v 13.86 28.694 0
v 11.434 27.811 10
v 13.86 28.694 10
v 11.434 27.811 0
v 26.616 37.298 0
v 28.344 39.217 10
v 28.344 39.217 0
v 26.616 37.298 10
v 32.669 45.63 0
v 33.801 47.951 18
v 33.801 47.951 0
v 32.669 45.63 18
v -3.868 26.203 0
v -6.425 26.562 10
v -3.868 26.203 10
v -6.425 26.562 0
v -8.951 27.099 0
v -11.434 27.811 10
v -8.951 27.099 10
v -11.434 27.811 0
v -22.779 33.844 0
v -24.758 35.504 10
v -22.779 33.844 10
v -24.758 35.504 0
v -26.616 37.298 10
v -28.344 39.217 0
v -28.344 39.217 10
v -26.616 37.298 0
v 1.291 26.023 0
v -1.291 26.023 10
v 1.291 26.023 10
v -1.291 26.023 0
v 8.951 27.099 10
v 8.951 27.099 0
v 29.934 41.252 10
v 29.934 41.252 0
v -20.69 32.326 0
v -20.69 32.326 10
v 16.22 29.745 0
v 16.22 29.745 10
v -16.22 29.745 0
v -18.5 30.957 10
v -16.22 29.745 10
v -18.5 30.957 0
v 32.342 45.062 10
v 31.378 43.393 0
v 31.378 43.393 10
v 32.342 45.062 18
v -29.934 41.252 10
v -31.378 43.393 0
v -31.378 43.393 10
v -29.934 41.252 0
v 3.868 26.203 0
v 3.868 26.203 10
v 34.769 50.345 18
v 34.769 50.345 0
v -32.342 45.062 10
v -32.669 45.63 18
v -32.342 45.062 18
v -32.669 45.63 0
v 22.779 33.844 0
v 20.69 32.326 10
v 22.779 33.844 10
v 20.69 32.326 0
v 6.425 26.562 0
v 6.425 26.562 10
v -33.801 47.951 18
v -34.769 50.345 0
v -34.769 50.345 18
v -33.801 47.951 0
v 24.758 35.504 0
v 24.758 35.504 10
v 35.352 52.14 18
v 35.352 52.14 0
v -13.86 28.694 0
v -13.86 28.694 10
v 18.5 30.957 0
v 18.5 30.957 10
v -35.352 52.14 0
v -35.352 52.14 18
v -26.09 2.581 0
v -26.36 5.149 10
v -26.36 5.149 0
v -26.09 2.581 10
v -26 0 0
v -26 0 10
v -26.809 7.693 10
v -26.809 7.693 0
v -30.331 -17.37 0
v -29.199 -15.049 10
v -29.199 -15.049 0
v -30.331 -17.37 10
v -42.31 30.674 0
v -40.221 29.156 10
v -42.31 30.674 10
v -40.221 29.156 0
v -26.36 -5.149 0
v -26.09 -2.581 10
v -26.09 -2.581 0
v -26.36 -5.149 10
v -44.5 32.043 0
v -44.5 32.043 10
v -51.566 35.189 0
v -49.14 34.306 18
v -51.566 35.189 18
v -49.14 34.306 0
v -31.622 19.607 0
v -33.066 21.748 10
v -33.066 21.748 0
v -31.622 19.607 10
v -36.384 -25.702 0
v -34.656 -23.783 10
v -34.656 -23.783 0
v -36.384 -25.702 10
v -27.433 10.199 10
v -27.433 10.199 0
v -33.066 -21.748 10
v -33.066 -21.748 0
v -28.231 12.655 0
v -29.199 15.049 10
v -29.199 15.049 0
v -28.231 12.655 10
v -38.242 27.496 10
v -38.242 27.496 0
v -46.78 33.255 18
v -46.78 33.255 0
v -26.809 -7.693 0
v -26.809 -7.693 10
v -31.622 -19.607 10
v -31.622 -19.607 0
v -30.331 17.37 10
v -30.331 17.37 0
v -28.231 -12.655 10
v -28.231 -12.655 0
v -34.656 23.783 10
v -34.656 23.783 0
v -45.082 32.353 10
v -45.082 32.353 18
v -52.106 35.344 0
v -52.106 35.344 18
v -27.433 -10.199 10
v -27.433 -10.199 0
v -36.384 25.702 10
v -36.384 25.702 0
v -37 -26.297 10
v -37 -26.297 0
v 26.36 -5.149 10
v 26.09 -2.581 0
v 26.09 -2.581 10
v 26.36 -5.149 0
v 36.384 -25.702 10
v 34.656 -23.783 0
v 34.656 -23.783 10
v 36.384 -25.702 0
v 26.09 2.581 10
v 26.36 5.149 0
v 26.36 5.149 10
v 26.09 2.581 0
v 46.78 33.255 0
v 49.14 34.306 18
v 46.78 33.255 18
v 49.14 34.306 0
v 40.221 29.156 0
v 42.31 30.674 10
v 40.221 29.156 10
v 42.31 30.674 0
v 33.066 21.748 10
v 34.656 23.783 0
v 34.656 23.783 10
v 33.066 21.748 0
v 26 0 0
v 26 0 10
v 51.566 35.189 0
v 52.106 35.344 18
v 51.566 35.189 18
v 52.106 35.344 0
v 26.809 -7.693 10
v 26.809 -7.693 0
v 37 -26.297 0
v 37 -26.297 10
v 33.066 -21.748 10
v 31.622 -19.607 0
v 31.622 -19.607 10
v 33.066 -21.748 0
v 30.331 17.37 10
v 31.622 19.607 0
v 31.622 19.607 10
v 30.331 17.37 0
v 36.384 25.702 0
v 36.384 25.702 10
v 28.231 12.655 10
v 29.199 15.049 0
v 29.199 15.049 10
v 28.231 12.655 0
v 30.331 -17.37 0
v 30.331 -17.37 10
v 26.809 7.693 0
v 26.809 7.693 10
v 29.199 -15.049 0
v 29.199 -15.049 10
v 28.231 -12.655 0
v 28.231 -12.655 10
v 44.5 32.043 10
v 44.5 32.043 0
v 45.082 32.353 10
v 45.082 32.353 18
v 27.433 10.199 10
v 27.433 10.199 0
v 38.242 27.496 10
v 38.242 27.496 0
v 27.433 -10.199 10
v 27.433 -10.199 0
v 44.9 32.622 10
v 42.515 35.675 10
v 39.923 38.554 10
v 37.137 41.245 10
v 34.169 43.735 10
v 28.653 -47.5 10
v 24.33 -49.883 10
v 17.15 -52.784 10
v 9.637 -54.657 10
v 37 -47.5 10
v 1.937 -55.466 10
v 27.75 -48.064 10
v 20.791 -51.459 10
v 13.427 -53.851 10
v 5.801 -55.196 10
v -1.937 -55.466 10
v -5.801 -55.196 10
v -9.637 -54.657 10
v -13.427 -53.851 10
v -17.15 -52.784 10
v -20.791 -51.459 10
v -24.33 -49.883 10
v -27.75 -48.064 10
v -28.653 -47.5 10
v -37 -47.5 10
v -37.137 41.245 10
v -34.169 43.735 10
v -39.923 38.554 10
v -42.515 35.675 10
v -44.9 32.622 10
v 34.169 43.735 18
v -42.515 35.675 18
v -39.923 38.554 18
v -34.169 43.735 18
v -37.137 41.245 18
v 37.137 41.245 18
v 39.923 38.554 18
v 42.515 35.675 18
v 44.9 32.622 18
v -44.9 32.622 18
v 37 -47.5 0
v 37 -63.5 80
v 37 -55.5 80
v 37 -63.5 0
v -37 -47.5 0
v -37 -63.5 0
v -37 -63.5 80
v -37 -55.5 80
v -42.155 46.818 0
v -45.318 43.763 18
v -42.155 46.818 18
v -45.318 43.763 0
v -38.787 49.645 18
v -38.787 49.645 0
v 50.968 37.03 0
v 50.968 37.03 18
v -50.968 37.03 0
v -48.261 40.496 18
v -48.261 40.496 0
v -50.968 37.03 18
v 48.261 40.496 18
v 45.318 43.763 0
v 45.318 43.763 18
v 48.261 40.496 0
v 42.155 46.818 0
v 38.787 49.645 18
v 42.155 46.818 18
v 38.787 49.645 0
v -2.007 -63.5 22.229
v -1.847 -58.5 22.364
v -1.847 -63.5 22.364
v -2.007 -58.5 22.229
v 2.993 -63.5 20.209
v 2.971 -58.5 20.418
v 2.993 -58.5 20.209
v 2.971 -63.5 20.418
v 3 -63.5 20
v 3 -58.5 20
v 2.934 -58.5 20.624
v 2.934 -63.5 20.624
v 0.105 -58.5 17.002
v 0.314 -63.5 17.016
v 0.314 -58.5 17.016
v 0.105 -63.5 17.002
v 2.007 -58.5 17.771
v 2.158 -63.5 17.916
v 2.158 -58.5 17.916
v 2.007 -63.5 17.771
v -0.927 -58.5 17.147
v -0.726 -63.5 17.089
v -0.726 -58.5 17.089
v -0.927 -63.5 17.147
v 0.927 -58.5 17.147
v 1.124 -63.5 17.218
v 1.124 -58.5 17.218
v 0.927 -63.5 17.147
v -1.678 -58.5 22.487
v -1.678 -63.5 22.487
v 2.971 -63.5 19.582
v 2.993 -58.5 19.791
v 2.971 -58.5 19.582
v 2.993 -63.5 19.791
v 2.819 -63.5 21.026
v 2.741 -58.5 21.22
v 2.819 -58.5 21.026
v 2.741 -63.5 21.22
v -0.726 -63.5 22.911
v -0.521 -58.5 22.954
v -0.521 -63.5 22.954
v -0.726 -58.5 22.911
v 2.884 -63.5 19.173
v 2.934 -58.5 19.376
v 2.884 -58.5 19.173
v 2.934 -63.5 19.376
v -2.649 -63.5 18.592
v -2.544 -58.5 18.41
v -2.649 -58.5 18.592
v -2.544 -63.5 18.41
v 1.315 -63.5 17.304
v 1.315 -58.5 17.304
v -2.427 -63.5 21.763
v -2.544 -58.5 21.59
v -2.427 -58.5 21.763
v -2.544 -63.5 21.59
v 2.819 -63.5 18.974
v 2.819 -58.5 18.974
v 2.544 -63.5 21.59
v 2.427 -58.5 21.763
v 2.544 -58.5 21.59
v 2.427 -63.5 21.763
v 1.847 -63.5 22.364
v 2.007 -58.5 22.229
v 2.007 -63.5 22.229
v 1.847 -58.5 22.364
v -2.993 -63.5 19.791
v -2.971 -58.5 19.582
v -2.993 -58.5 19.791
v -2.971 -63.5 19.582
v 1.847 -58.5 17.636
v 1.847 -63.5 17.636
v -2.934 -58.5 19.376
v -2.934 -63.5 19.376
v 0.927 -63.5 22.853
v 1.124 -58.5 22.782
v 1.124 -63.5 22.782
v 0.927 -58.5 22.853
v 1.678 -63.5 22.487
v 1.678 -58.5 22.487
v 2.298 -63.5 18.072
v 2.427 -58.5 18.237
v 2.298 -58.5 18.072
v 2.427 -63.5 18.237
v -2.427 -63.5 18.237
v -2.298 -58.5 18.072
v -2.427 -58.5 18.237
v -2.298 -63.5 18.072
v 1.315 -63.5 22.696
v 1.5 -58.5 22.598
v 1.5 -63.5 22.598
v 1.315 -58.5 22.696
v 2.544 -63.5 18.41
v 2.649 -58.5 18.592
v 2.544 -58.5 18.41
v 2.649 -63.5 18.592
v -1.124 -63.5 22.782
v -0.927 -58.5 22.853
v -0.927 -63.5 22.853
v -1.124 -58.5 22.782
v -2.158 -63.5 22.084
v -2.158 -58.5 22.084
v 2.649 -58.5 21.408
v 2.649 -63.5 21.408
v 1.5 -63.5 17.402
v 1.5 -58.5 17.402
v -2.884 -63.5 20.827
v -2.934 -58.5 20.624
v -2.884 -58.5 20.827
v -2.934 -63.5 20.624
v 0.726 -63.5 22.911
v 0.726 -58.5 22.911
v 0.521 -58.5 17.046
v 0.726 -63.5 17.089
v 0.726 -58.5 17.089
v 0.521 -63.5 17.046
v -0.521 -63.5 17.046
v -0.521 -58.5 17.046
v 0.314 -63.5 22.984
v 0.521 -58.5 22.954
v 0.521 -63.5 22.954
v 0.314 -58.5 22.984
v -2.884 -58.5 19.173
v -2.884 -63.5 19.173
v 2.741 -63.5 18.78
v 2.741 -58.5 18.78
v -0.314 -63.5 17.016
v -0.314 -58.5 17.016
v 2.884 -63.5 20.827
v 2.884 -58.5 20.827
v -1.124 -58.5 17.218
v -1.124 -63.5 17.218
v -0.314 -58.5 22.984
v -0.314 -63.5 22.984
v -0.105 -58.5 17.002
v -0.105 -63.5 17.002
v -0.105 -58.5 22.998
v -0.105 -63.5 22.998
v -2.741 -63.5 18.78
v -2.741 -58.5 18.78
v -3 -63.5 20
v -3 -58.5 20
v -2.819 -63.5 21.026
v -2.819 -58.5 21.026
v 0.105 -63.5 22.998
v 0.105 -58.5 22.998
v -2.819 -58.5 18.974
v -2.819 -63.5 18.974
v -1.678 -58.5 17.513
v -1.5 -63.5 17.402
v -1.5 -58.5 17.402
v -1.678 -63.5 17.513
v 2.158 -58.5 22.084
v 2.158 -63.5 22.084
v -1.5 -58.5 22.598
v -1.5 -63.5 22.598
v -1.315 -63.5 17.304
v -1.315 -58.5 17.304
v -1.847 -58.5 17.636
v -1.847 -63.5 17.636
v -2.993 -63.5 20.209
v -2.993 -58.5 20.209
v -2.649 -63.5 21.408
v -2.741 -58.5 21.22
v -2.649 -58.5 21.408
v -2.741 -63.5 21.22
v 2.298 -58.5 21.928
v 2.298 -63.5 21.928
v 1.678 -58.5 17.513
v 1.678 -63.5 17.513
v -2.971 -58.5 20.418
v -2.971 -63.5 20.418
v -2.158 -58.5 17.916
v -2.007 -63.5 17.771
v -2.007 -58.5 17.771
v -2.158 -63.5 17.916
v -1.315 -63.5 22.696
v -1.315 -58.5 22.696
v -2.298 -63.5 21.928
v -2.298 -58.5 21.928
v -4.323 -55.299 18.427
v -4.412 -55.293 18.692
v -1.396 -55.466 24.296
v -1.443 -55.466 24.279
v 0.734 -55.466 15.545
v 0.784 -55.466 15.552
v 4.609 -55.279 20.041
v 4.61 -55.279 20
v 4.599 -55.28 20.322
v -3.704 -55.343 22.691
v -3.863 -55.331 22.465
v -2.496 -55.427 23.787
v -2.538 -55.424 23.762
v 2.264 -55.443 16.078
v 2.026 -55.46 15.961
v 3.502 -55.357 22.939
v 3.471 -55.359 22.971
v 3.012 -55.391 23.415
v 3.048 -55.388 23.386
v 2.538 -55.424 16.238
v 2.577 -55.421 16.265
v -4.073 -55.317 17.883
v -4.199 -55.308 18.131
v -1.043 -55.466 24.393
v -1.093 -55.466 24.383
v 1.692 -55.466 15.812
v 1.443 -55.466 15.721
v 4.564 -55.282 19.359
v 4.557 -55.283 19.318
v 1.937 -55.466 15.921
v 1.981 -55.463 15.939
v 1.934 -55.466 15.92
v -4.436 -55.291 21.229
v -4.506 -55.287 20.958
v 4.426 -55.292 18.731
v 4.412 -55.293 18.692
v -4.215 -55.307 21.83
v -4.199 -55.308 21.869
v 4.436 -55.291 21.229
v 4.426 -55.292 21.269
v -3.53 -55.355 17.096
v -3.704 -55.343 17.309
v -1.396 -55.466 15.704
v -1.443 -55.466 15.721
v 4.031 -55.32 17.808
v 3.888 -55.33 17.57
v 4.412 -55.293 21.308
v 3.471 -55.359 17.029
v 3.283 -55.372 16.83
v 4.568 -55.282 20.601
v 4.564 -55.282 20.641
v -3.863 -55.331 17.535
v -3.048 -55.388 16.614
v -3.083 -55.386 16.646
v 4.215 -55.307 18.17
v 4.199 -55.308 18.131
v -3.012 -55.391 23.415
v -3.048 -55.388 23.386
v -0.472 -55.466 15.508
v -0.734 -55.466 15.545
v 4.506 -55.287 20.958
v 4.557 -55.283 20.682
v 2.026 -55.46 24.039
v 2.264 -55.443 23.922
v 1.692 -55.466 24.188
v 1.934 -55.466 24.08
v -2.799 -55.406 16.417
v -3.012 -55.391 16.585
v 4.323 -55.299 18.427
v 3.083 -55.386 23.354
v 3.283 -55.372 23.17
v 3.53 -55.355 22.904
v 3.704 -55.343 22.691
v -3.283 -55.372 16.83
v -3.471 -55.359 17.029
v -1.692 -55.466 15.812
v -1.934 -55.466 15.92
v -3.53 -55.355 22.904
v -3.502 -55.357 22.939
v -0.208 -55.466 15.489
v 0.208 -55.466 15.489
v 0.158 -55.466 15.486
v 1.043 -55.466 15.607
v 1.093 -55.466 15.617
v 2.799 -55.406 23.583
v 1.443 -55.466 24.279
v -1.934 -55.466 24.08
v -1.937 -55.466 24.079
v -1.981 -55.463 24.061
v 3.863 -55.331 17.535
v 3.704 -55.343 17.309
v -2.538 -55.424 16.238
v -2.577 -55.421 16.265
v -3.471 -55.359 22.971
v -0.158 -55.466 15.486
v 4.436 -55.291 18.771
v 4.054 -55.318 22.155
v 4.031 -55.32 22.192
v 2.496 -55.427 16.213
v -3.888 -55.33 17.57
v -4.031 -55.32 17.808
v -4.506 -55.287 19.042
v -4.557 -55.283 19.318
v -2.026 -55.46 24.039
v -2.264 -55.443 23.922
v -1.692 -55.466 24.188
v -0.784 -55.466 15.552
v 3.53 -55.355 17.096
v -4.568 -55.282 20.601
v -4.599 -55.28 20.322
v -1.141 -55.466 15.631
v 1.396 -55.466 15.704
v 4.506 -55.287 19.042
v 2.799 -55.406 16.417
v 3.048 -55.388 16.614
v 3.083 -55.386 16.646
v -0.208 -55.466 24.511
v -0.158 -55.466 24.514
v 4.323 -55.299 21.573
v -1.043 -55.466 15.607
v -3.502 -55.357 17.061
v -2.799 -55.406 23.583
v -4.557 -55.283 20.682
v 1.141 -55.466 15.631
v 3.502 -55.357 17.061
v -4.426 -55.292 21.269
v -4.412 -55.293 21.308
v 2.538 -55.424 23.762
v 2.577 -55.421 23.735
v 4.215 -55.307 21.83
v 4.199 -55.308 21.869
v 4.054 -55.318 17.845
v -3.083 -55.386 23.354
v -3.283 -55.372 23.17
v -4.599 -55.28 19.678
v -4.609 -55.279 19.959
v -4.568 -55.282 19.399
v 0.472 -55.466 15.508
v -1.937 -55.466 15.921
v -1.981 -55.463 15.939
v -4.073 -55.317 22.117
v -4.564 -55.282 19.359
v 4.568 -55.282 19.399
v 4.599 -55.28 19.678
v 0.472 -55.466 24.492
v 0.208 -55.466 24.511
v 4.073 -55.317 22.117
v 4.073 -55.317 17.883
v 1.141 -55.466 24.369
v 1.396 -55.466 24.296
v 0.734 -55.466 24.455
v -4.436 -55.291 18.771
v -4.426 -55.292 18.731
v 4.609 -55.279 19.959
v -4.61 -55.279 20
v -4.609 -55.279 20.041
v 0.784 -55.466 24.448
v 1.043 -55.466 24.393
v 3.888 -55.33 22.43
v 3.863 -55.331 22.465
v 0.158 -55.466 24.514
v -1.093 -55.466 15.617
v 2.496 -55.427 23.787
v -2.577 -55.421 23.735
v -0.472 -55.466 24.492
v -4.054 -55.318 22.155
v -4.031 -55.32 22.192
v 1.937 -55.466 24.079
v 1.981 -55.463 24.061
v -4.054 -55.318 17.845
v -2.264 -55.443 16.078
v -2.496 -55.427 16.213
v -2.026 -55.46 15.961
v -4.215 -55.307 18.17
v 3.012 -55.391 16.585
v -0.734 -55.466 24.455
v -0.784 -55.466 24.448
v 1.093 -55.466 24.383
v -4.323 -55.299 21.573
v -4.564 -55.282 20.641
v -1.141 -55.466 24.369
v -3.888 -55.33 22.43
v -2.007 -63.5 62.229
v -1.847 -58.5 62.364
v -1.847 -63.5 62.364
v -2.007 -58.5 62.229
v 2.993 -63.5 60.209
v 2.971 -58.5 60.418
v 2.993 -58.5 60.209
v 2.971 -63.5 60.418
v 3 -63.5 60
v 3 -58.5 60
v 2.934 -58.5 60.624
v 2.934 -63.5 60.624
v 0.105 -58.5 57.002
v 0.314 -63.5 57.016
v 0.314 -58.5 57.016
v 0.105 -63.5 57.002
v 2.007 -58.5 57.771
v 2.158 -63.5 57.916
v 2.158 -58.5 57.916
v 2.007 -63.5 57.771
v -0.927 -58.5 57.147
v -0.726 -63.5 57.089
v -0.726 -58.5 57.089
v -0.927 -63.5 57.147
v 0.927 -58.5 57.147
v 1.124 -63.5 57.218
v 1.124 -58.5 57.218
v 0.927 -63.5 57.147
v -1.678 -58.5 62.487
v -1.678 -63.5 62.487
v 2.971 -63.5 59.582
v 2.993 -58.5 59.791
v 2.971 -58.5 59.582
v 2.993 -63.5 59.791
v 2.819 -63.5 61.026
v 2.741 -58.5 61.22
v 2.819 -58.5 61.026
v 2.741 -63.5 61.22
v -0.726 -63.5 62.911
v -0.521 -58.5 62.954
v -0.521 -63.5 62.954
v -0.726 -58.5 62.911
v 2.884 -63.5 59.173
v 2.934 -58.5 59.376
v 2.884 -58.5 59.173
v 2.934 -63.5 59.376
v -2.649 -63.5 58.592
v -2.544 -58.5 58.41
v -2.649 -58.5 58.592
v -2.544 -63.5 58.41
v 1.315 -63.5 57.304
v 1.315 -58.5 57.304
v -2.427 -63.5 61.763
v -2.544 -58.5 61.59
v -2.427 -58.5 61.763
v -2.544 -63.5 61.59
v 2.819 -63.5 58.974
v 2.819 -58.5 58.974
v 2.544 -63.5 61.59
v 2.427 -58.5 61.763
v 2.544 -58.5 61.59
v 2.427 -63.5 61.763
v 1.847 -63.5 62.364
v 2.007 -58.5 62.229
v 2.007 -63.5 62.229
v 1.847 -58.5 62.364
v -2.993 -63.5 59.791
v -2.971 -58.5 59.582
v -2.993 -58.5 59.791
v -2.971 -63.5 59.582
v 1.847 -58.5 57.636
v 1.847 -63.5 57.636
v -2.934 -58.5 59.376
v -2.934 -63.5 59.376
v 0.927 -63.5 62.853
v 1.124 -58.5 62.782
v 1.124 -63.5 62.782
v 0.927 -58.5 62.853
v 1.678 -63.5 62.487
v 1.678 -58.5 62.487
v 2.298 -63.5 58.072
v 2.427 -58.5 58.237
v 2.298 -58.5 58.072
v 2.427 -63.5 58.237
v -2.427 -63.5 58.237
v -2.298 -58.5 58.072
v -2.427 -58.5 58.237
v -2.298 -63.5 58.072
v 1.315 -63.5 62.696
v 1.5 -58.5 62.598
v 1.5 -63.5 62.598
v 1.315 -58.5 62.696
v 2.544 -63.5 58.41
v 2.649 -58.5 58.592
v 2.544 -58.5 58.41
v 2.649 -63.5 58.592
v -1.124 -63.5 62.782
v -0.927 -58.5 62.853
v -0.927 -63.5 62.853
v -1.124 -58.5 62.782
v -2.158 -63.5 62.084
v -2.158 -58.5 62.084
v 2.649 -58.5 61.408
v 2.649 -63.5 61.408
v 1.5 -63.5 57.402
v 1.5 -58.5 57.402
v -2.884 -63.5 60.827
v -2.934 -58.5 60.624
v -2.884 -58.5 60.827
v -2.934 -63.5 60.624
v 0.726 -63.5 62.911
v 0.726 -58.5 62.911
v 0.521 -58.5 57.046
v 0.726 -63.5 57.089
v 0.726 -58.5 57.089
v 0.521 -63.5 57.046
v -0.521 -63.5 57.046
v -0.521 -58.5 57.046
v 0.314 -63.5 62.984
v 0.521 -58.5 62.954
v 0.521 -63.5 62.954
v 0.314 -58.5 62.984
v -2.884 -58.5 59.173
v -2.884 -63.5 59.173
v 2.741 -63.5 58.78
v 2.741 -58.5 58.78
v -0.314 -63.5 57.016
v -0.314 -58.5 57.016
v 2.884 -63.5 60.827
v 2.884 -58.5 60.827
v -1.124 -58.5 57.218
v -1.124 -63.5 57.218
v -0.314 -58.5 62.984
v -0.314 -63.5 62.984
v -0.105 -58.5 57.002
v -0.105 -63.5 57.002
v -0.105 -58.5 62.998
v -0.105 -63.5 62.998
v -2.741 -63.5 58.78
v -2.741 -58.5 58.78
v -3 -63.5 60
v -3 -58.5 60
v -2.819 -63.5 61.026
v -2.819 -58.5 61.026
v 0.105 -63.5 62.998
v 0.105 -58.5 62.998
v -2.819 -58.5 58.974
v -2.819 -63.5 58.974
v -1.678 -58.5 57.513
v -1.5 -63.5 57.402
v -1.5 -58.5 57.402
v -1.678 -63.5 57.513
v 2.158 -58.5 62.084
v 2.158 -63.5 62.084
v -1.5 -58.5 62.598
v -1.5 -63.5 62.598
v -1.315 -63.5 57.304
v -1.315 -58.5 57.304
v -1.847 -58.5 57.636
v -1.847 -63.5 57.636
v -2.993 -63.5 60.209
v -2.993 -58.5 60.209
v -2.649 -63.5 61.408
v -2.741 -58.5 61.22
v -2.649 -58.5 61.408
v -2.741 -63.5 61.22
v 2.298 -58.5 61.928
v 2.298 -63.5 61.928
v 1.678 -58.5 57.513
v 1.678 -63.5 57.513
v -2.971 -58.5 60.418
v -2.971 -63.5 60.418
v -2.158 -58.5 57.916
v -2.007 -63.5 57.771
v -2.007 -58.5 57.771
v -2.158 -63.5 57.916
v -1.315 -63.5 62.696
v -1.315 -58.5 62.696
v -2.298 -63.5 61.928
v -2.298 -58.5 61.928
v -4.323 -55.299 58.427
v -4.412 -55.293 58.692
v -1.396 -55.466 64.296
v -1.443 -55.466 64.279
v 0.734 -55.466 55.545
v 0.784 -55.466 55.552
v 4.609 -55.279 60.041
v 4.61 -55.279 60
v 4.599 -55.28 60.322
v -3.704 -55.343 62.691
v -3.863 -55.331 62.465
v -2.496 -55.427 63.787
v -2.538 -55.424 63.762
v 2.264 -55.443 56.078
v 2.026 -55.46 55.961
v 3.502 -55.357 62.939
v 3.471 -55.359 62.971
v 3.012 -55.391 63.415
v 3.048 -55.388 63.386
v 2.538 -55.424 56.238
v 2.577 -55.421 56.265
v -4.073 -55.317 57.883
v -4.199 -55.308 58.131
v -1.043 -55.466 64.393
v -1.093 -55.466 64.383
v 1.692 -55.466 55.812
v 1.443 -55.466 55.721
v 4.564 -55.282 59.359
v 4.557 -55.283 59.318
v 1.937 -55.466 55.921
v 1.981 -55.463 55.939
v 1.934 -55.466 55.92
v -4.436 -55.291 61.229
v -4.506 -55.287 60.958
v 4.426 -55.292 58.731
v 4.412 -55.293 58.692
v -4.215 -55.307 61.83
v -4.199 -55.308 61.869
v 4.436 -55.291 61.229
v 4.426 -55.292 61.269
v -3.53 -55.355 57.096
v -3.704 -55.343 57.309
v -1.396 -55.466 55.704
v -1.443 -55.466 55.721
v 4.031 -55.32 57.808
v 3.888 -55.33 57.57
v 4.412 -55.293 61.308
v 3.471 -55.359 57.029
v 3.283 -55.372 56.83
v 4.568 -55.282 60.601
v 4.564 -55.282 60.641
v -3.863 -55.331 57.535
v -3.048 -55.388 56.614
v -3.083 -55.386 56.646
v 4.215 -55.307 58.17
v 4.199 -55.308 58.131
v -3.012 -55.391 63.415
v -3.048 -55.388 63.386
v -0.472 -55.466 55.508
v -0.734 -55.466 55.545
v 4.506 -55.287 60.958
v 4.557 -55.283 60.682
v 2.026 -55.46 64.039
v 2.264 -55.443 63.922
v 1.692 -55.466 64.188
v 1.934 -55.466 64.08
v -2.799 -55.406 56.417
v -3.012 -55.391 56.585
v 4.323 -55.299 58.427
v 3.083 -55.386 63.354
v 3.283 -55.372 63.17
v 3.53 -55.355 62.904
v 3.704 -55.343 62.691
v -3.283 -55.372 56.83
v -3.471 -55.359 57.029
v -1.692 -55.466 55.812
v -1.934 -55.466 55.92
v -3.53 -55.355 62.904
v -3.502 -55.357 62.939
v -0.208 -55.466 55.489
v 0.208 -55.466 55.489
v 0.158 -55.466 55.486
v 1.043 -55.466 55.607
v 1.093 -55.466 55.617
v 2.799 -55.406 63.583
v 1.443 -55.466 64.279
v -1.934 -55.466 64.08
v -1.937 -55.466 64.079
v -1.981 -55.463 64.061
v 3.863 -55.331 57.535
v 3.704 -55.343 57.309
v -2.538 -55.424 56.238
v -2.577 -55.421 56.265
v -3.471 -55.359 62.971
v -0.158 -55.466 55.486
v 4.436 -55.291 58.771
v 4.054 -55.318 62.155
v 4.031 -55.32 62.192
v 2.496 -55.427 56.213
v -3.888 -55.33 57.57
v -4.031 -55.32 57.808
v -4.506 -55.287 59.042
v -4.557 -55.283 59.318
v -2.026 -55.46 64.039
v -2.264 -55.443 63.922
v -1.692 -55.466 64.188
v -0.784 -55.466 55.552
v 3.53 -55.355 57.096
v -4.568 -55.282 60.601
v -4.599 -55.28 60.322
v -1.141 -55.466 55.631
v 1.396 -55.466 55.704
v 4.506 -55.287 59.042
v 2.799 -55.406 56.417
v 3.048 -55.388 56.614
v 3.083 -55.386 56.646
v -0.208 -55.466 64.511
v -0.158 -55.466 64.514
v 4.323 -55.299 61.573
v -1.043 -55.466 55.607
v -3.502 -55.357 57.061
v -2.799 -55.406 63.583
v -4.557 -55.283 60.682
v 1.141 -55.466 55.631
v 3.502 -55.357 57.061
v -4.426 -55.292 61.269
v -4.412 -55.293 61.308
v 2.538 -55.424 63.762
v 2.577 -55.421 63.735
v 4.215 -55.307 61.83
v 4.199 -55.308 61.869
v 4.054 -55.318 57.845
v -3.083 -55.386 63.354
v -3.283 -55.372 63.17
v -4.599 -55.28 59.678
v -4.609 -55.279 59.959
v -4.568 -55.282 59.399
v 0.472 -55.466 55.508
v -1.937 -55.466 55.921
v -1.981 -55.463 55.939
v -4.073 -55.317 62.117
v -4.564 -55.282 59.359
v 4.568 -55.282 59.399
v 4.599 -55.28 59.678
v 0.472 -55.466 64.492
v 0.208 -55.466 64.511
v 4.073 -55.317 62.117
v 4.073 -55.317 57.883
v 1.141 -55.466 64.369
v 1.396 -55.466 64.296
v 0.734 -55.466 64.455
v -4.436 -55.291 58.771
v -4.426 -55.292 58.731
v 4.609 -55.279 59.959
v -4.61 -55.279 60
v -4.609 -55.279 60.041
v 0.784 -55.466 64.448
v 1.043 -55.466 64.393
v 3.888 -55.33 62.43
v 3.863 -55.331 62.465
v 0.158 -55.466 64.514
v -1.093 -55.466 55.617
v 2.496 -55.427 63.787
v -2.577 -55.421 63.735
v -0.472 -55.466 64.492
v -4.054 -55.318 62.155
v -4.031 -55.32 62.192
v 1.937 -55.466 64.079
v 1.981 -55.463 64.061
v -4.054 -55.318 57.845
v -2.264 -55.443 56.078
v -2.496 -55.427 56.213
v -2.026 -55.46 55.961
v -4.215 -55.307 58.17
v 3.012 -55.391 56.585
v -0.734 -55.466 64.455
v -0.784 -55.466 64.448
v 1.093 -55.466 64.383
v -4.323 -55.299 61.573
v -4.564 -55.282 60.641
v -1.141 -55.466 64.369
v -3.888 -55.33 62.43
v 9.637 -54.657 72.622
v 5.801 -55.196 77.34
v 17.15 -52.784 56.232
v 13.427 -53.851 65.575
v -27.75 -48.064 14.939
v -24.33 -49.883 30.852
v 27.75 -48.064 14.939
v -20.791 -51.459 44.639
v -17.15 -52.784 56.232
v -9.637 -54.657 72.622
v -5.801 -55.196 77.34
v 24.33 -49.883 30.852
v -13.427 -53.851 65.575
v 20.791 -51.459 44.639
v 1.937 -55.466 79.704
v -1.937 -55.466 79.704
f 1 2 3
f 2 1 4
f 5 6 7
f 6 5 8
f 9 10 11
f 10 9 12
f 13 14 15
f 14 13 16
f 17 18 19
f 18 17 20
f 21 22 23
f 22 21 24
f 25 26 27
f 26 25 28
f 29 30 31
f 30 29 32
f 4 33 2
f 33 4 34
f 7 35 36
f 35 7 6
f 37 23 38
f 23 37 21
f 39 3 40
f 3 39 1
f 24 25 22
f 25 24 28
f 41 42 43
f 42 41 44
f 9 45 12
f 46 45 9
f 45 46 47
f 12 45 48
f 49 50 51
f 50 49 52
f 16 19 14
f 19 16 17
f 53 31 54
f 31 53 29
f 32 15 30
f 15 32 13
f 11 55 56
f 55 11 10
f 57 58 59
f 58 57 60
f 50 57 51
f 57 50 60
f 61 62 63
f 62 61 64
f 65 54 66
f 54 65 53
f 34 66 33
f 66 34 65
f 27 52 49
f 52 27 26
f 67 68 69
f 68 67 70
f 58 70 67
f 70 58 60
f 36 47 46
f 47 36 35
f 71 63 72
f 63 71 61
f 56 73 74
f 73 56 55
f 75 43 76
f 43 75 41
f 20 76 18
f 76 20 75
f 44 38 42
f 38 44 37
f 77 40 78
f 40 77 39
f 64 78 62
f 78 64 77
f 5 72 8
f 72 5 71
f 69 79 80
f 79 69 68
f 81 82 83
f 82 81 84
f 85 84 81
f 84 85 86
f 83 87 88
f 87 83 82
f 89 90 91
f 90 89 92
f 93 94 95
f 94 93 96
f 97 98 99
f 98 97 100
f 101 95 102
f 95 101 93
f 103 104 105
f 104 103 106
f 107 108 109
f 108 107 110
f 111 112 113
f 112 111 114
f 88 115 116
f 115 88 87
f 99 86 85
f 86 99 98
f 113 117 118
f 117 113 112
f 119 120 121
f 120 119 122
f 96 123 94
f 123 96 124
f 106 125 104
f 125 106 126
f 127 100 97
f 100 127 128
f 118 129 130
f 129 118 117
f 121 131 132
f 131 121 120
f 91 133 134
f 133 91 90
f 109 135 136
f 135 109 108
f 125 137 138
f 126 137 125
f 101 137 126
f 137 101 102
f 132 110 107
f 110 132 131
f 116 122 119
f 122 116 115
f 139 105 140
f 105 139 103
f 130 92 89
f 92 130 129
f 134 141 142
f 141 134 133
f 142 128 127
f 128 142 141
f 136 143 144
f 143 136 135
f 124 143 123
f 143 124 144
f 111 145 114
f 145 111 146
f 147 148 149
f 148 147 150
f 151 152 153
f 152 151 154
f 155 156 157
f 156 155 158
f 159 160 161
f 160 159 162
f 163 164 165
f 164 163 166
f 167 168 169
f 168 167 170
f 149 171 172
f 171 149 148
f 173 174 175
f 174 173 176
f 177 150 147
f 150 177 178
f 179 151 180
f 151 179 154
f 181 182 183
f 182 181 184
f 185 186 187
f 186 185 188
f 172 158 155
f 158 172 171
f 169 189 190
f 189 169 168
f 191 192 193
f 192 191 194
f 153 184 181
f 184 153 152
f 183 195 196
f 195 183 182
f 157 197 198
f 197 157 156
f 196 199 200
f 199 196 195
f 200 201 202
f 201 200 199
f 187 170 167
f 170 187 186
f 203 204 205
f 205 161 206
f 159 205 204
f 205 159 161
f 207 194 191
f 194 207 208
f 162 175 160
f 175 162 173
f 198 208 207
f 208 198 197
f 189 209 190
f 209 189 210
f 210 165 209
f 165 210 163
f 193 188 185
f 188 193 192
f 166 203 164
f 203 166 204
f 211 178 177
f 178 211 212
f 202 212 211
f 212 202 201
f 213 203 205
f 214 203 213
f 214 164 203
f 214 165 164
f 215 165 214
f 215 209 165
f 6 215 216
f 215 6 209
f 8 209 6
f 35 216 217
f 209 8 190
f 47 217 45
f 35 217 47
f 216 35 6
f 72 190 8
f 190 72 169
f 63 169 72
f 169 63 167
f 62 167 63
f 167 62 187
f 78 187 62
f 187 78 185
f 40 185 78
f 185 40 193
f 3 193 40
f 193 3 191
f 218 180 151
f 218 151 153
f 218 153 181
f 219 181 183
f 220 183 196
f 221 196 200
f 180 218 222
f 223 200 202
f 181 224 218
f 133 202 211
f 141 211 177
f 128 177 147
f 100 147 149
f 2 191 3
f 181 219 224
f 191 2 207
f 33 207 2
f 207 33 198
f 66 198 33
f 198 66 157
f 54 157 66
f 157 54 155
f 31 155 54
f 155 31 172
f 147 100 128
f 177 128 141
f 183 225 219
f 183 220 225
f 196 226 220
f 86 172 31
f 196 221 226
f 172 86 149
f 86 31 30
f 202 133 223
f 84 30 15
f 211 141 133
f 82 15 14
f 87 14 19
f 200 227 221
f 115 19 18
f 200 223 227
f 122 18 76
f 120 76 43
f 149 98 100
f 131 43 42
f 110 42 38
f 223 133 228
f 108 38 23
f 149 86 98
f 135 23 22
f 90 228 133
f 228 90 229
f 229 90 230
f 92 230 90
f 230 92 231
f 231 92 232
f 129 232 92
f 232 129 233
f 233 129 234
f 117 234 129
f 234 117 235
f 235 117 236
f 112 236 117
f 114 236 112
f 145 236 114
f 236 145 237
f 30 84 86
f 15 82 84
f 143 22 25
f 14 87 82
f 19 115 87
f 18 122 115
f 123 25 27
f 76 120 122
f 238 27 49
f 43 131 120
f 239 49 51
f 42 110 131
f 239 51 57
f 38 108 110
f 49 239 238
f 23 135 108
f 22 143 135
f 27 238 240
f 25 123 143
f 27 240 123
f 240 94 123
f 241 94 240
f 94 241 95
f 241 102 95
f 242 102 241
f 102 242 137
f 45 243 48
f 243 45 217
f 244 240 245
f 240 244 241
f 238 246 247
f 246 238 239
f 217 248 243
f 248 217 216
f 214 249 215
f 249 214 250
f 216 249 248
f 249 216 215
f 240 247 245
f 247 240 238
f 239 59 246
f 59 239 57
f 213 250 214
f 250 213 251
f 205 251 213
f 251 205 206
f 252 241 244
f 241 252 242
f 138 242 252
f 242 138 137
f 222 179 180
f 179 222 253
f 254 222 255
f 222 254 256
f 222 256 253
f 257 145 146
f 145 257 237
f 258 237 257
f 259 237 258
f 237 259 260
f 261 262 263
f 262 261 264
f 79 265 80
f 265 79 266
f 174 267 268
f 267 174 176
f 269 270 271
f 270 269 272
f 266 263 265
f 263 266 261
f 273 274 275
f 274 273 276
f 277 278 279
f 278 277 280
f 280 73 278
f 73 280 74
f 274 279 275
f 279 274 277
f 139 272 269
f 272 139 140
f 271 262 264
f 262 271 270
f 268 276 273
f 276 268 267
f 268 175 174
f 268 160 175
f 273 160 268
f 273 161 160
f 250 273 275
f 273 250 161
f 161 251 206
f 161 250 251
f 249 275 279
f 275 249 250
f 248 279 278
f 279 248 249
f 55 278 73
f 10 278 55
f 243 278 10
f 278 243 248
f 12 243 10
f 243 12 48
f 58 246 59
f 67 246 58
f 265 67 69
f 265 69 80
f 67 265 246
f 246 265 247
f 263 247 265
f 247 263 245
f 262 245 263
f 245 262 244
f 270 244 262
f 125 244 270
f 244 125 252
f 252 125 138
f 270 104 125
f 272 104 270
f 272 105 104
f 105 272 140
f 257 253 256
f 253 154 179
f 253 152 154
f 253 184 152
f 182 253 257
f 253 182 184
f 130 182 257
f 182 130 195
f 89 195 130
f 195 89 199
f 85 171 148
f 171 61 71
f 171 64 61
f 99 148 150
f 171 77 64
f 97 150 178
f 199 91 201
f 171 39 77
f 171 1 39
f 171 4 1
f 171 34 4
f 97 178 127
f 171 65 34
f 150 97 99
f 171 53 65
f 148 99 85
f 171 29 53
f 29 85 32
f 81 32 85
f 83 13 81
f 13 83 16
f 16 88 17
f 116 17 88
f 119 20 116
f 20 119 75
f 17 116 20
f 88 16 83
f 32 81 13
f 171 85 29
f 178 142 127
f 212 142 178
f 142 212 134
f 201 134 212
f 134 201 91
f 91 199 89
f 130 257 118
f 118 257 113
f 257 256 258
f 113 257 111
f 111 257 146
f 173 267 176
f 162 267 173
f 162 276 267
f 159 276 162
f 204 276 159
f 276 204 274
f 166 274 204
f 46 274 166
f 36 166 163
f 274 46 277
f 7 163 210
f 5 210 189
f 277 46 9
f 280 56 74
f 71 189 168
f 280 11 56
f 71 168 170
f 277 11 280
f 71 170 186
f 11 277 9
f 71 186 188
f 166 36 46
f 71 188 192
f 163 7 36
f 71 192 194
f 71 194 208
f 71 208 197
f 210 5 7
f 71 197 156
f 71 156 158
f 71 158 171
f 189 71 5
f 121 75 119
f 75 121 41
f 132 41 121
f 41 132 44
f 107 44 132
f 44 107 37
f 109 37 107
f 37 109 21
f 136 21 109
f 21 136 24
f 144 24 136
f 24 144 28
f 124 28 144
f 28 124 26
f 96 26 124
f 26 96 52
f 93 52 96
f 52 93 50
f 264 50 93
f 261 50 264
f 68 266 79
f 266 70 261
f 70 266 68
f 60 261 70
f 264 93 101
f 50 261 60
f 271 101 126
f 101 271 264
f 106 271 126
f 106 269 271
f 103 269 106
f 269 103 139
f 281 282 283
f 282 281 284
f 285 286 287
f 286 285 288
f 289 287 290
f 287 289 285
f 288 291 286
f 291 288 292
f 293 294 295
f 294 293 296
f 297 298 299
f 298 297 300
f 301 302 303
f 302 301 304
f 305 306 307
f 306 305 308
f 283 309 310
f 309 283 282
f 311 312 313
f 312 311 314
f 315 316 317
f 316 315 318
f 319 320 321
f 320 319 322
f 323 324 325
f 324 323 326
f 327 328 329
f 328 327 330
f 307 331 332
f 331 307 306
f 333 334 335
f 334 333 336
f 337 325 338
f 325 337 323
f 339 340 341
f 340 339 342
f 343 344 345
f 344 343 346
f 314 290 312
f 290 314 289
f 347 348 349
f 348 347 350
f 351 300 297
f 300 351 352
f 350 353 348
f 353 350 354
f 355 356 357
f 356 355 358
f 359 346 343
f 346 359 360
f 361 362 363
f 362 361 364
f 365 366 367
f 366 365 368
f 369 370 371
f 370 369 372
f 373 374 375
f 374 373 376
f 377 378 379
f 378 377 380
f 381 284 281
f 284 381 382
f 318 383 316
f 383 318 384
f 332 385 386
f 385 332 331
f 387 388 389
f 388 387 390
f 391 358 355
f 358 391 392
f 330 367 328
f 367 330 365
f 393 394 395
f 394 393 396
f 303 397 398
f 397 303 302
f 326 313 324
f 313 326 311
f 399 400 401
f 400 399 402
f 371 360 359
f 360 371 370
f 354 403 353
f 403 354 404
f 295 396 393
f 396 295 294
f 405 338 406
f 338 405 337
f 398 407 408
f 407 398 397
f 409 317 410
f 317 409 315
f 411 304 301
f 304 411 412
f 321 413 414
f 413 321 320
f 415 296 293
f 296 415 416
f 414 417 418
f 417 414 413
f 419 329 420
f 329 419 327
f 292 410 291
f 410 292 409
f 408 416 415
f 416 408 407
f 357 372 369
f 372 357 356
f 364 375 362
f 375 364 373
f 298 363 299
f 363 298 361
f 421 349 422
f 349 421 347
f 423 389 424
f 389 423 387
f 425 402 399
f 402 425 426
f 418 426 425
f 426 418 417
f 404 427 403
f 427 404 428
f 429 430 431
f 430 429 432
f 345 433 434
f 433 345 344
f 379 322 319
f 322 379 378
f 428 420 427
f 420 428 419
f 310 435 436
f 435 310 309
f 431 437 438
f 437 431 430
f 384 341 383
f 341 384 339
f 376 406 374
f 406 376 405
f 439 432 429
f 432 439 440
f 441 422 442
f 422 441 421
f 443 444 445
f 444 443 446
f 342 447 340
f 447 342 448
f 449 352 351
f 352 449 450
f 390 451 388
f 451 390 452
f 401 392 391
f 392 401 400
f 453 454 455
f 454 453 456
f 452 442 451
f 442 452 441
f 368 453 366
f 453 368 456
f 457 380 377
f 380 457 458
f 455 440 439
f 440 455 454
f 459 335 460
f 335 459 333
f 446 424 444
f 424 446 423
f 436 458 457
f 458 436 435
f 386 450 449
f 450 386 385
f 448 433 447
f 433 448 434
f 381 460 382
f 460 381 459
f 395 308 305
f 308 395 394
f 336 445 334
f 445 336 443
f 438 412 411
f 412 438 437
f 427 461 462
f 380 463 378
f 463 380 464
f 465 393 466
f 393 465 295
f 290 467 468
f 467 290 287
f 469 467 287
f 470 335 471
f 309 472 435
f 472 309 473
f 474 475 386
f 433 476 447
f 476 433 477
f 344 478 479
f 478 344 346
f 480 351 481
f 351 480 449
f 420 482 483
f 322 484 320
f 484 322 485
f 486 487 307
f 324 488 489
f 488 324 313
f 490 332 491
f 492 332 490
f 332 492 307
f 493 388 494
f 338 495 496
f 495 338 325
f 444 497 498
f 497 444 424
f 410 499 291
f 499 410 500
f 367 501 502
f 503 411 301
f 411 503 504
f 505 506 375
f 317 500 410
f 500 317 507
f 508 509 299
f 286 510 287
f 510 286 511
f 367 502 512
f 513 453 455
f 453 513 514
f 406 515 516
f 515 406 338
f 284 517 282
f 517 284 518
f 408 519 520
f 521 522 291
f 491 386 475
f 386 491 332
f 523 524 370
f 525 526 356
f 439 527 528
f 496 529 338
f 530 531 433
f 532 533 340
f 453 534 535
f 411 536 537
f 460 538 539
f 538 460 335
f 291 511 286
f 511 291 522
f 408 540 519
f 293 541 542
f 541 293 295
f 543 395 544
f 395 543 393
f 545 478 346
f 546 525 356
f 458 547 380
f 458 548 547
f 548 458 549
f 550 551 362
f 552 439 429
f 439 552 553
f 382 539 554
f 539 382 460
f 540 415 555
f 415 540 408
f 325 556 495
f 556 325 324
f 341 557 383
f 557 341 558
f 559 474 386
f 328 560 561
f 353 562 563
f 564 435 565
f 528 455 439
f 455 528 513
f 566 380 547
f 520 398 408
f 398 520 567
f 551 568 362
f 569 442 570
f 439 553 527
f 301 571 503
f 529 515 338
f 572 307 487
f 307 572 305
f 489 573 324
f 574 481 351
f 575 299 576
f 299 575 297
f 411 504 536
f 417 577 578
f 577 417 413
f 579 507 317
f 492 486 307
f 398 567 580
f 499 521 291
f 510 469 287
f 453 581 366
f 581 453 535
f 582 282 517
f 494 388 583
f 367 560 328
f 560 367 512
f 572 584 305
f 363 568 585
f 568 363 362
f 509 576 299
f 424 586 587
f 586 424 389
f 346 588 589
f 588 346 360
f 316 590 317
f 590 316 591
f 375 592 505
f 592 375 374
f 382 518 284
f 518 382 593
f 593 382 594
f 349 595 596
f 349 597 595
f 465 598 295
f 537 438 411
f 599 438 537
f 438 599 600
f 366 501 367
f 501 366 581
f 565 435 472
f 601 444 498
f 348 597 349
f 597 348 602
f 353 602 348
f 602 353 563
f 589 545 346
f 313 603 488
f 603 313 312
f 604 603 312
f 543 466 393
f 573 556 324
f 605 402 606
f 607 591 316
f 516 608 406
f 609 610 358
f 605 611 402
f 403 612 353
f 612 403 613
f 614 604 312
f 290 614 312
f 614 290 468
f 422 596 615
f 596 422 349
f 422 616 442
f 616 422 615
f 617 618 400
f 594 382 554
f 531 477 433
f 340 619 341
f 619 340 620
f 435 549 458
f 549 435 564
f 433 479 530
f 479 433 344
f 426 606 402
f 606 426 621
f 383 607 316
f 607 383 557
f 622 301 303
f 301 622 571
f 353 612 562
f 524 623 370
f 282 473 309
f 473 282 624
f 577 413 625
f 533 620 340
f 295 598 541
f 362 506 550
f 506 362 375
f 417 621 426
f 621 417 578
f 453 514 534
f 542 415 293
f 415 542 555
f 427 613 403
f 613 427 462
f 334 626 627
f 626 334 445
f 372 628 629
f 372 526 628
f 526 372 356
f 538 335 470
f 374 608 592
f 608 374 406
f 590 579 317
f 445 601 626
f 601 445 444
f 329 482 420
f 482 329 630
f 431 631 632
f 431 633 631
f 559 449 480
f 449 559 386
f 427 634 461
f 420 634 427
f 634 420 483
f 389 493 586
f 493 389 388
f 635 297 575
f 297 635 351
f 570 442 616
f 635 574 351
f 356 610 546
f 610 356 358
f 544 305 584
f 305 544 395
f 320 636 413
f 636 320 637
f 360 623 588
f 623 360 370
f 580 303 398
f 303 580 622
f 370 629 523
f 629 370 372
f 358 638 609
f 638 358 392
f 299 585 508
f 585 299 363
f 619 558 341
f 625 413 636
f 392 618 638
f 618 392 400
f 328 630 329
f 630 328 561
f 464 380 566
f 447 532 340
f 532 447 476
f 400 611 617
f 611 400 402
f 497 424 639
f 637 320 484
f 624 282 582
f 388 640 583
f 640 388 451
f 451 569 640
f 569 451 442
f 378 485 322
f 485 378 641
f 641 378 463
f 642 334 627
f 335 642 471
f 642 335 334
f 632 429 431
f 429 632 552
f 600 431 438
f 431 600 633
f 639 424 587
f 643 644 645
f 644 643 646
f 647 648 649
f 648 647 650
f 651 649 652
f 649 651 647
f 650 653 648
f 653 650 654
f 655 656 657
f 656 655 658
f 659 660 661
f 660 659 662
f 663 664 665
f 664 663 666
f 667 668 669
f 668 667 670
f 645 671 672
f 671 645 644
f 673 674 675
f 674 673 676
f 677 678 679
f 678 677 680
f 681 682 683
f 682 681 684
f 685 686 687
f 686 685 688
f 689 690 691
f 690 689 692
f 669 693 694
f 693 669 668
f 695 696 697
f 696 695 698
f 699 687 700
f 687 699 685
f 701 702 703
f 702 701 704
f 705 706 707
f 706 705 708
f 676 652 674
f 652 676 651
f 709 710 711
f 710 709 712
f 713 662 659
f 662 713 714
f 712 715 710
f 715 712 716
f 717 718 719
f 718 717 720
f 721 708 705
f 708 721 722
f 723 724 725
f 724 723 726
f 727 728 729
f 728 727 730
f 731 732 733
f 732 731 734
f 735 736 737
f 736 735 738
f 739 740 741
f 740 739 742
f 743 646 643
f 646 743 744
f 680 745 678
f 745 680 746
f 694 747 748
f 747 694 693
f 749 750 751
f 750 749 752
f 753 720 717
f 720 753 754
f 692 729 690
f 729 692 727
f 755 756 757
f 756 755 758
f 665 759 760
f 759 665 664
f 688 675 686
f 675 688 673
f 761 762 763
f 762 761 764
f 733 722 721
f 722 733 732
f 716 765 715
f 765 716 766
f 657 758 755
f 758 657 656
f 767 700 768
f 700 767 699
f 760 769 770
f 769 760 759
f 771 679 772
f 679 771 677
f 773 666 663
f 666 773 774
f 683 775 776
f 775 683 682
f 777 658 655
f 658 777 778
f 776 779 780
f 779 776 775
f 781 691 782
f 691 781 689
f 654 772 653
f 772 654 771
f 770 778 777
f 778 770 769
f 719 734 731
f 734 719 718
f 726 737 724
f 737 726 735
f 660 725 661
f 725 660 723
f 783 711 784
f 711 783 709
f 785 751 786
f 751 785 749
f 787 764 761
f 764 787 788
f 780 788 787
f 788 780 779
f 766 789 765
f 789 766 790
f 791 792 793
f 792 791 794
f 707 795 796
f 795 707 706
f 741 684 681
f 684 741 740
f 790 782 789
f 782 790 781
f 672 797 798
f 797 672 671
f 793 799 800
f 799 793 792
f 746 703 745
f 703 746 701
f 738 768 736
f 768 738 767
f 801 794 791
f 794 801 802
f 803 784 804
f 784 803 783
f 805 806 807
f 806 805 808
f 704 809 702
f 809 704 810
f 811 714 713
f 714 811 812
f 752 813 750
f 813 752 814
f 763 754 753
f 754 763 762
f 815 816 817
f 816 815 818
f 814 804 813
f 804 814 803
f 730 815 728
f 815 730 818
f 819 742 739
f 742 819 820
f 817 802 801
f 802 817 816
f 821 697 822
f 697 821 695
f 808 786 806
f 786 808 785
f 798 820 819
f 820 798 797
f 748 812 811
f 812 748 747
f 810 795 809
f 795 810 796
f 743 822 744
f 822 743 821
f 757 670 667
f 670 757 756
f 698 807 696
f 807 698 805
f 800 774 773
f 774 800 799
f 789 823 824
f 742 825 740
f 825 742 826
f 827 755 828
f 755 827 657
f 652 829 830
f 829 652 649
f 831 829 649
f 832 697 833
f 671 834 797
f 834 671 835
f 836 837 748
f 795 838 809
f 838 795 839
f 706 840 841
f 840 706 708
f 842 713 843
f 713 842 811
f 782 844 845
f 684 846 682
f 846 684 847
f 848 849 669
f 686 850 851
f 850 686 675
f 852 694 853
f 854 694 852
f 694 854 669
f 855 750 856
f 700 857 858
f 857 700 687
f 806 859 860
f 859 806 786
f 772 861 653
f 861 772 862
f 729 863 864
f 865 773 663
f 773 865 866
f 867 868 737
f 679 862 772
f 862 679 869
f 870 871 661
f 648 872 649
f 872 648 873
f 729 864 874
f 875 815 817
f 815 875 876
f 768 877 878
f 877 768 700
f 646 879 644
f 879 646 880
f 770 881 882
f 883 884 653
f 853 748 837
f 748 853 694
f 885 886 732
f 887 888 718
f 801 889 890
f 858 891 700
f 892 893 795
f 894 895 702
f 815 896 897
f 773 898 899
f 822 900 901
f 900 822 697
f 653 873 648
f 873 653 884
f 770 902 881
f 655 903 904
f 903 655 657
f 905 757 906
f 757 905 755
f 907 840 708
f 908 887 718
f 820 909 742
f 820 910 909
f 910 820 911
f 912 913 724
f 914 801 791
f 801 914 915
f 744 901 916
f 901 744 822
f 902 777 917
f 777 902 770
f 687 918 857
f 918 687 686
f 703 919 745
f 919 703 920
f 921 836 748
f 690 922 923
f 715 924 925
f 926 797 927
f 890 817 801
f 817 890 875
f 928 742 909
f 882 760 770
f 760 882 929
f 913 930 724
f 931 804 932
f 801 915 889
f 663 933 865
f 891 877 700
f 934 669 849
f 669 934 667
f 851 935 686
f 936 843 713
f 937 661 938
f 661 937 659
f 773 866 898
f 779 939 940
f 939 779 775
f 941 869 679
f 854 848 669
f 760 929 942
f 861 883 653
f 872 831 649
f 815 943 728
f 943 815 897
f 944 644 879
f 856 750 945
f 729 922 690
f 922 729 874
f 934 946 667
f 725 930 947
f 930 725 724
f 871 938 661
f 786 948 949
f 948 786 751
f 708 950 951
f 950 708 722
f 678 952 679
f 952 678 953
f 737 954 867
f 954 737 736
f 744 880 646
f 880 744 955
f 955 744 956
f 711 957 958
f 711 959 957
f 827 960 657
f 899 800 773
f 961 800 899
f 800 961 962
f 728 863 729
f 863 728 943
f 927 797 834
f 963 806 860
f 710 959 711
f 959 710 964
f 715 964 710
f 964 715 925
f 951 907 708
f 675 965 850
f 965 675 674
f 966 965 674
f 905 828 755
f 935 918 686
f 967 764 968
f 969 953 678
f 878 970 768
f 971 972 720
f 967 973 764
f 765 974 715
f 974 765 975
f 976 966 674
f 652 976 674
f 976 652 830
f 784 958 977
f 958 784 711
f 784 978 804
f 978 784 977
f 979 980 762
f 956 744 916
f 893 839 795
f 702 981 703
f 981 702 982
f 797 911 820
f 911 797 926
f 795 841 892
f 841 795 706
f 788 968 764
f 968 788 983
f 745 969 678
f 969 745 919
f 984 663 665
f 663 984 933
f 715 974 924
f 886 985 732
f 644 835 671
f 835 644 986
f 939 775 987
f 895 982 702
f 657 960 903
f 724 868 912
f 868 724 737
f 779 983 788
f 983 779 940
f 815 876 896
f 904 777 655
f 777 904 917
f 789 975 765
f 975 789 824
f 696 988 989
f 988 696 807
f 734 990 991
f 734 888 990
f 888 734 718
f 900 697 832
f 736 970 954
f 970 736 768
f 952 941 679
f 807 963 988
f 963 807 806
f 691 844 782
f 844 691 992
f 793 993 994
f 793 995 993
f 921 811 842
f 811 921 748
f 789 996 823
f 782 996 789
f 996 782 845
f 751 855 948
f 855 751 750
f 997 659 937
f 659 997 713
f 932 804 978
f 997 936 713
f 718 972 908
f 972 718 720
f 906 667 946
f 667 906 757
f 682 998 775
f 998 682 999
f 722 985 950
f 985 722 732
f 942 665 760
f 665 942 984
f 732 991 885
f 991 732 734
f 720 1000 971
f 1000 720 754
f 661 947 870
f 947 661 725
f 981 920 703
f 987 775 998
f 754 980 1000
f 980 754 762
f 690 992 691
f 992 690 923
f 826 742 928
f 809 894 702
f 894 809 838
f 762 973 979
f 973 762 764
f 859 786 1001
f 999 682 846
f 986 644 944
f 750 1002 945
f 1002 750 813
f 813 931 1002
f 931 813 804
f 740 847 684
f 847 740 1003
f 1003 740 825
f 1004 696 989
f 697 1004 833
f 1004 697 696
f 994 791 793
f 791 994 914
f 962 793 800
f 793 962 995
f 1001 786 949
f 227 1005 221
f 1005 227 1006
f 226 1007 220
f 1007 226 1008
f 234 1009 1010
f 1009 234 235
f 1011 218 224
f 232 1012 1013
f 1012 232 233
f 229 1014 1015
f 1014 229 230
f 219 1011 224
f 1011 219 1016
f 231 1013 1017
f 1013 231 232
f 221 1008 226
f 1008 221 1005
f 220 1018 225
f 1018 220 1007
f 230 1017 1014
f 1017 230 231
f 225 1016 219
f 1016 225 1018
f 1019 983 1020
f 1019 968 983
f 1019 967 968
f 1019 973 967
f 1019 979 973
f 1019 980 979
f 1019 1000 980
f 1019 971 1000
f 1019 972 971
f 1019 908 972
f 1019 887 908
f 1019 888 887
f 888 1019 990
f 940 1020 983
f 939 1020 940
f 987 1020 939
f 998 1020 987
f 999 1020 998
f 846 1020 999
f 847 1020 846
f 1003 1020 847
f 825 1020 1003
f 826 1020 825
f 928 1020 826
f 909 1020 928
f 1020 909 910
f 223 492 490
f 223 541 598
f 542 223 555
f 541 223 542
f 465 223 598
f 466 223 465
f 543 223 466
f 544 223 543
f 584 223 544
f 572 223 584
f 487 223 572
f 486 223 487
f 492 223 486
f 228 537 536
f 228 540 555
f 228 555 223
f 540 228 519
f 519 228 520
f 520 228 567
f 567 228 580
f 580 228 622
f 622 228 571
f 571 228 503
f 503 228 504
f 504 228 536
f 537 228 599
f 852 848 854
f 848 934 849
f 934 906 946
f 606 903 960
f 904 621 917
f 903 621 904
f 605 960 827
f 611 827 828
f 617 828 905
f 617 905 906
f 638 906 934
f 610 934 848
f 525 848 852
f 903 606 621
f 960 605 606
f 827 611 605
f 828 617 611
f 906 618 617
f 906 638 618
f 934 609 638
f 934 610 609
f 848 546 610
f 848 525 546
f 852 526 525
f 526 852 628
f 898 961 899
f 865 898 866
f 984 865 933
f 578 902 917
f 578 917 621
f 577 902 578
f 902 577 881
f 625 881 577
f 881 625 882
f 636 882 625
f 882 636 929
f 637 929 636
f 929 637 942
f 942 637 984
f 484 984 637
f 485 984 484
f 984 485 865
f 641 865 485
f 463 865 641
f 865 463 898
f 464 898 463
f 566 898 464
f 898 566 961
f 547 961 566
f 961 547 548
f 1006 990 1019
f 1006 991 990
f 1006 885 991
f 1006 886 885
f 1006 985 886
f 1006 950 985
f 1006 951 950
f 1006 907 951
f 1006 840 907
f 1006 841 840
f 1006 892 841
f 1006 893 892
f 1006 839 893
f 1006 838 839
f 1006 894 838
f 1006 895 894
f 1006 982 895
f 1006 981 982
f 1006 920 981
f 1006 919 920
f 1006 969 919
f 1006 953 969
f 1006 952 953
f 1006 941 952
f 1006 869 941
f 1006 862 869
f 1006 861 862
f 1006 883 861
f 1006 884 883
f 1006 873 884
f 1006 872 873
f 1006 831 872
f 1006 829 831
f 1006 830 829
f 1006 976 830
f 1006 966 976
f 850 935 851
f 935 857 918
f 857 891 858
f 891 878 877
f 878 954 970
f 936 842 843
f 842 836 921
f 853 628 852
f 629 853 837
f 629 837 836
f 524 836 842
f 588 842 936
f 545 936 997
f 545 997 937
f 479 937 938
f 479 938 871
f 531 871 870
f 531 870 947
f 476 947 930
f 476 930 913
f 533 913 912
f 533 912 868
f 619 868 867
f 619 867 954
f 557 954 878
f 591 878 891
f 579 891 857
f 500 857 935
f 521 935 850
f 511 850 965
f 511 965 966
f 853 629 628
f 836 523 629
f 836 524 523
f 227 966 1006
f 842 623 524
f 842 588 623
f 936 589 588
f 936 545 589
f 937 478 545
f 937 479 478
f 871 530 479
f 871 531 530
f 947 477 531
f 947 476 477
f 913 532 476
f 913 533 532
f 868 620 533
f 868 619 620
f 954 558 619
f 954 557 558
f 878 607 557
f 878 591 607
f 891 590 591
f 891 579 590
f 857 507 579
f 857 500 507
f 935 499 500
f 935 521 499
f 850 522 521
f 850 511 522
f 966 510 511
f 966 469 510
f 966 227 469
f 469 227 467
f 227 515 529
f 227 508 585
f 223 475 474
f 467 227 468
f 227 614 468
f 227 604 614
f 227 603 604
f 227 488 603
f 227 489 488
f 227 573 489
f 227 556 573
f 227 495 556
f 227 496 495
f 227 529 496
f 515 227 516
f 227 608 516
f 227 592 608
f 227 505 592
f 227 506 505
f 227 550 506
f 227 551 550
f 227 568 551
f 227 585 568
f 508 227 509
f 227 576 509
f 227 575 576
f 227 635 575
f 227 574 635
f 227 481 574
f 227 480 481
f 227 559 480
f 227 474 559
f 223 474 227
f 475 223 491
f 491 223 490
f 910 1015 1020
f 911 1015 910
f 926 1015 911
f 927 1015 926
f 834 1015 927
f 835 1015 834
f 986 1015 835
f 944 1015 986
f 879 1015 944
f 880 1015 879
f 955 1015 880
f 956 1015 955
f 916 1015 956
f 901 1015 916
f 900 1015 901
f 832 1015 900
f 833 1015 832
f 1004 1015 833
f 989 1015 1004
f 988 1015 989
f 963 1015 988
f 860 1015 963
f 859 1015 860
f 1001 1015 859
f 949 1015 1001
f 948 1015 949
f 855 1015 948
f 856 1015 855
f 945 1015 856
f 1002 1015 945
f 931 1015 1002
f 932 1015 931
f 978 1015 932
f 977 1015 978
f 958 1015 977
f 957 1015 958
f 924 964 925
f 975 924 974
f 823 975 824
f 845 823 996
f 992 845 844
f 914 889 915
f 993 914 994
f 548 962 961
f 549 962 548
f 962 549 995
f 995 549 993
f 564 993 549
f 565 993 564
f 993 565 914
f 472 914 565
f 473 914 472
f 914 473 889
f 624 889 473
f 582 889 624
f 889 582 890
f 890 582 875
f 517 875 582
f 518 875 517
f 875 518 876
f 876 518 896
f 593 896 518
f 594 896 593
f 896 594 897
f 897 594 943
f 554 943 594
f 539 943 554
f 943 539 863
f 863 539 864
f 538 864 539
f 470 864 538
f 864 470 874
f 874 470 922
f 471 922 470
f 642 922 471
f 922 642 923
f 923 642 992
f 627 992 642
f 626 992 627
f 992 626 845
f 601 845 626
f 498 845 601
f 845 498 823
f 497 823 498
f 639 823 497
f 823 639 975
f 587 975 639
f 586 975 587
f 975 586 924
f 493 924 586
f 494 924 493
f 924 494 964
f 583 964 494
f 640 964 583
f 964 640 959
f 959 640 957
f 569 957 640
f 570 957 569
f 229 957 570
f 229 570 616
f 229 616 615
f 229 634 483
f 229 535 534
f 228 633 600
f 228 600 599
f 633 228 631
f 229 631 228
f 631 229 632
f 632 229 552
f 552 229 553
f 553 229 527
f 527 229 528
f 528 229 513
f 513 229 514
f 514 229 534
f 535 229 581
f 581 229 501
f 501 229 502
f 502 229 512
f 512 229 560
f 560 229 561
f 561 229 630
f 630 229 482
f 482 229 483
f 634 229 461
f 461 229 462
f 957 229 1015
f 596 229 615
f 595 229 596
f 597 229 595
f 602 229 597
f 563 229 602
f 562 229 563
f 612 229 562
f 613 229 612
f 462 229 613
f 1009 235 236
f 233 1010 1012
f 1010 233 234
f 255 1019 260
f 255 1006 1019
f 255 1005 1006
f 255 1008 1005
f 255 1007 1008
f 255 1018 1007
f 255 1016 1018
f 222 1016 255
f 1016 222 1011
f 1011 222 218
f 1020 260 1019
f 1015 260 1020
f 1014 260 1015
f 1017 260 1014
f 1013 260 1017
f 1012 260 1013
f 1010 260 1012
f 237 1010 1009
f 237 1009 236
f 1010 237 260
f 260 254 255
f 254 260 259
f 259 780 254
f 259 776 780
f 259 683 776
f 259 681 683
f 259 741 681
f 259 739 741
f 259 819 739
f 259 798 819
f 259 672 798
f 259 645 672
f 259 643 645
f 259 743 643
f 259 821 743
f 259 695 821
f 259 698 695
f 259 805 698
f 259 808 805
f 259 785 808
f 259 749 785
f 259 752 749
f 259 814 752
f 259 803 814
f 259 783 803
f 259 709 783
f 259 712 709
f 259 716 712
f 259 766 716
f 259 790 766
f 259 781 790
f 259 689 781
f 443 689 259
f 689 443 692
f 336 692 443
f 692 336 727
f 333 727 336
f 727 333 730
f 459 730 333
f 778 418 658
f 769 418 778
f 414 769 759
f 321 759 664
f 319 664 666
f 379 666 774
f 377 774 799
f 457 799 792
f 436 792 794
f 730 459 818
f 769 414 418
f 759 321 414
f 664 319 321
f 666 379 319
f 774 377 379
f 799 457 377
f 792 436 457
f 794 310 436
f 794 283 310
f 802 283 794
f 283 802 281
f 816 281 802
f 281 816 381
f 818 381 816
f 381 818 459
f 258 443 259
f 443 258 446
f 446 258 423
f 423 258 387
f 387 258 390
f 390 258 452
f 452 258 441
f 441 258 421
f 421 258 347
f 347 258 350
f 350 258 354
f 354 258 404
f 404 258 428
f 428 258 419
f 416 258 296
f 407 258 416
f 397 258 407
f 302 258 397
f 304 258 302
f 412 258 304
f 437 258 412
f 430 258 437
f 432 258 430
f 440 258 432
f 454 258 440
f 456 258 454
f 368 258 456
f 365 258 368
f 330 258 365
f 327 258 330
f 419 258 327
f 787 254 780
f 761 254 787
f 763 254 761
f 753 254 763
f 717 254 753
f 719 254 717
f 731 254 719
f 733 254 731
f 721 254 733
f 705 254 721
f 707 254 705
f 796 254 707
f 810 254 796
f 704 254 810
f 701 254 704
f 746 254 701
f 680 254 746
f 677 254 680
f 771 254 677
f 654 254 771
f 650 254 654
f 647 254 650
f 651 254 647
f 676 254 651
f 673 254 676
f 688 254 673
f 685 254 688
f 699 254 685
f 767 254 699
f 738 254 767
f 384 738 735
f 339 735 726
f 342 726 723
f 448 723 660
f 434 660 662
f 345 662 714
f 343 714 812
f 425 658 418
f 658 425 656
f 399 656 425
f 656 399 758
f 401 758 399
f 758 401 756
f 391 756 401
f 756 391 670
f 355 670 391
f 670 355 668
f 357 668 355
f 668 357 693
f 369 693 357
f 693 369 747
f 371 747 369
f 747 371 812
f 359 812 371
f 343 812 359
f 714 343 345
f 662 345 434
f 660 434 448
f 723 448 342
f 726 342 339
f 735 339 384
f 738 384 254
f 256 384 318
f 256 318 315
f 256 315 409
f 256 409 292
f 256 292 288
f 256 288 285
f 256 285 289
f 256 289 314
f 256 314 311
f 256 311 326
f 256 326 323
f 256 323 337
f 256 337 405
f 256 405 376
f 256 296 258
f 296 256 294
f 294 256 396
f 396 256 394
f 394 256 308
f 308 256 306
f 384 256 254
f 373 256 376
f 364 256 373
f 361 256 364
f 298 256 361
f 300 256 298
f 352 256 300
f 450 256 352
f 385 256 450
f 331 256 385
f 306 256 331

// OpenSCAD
$fn=90;  // accuracy

module bottom(routerDiameter, mountWidth, bottomThickness) {
    extraDiameter   = 15;
    bottomDiameter  = routerDiameter+extraDiameter;
    bottomTotalThickness = bottomThickness+8;
    
    bottomCurvCutOutDiameter = mountWidth;
    bottomCurvCutOutHight    = bottomTotalThickness+2;
    
    module curvCutOut(){   
        translate([0,0,-1])
        cylinder(
            h=bottomCurvCutOutHight,
            d=bottomCurvCutOutDiameter);
    }
    
    module sideCutOut(){
        translate([0,-bottomDiameter/2,-1])
        cube(size = [
            bottomDiameter/2,
            bottomDiameter/2,
            bottomTotalThickness+2]);
    }
    
    difference(){
    union(){
        cylinder(
            h=bottomTotalThickness,
            d=bottomDiameter);
    }
    union(){
        translate([0,bottomDiameter/2,0])
        curvCutOut();
        translate([-bottomDiameter/2,0,0])
        curvCutOut();
        translate([bottomDiameter/2,0,0])
        curvCutOut();
        
        translate([0,0,bottomThickness])
        cylinder(
            h=bottomTotalThickness,
            d=routerDiameter);
    
        translate([
            -mountWidth/2,
            -bottomDiameter/2,
            -1])
        cube(size = [
            mountWidth,
            extraDiameter/2,
            bottomTotalThickness+2]);
        
        translate([mountWidth/2,0,0])
        sideCutOut();
        translate([-(mountWidth+bottomDiameter)/2,0,0])
        sideCutOut();
        
        translate([0,-extraDiameter,bottomThickness])
        cylinder(
            h=bottomTotalThickness,
            d=bottomDiameter);
    }}
}


module mount(routerDiameter, width, bottomThickness) {
    mountHight          = 80;
    mountWidth          = width;
    mountThickness      = 8;
    mountTotalThickness = mountThickness*2;

    function cathetusCalculator(a,b) = sqrt(pow(a,2)+pow(b,2));
    function angleCalculator(a,b)    = atan(a/b);
    
    module mountingHole(hight) {
        screwHoleDiameter = 6;
        screwHoleCountersinkDiameter = 10;
    
        translate([0,hight+1,0])
        rotate([90,0,0])
        union(){
        cylinder(
            h=hight+2,
            d=screwHoleDiameter);
        translate([0,0,0])    
        cylinder(
            h=hight/2,
            d2=screwHoleDiameter,
            d1=screwHoleCountersinkDiameter);    
        }   
    }
    
    translate([0,-mountThickness,0])
    difference(){
    union(){
    translate([-mountWidth/2,0,0])
    cube(size = [
        mountWidth,
        mountTotalThickness,
        mountHight]);
    }    
    union(){
    translate([
        0,
        routerDiameter/2+mountThickness,
        -1])
    cylinder(
        h=mountHight+2,
        d=routerDiameter);
    
    translate([0,0,20])
    mountingHole(mountThickness);
    translate([0,0,60])
    mountingHole(mountThickness);
    
        
    a = mountTotalThickness-mountThickness;
    b = mountHight-bottomThickness;    
    translate([-(mountWidth/2+1),
                mountTotalThickness,
                bottomThickness])
    rotate([angleCalculator(a,b),0,0])
    cube(size = [
        mountWidth+2,
        bottomThickness,
        cathetusCalculator(b,a)]); 
    
    }}
}


module routerStand() {
    margin          = 1;
    routerDiameter  = 110+margin;
    width           = (routerDiameter/3)*2;
    bottomThickness = 10;
    
    union(){
        bottom(routerDiameter, width, bottomThickness);
        translate([0,-routerDiameter/2,0])
        mount(routerDiameter, width, bottomThickness);
    }
}

routerStand();
